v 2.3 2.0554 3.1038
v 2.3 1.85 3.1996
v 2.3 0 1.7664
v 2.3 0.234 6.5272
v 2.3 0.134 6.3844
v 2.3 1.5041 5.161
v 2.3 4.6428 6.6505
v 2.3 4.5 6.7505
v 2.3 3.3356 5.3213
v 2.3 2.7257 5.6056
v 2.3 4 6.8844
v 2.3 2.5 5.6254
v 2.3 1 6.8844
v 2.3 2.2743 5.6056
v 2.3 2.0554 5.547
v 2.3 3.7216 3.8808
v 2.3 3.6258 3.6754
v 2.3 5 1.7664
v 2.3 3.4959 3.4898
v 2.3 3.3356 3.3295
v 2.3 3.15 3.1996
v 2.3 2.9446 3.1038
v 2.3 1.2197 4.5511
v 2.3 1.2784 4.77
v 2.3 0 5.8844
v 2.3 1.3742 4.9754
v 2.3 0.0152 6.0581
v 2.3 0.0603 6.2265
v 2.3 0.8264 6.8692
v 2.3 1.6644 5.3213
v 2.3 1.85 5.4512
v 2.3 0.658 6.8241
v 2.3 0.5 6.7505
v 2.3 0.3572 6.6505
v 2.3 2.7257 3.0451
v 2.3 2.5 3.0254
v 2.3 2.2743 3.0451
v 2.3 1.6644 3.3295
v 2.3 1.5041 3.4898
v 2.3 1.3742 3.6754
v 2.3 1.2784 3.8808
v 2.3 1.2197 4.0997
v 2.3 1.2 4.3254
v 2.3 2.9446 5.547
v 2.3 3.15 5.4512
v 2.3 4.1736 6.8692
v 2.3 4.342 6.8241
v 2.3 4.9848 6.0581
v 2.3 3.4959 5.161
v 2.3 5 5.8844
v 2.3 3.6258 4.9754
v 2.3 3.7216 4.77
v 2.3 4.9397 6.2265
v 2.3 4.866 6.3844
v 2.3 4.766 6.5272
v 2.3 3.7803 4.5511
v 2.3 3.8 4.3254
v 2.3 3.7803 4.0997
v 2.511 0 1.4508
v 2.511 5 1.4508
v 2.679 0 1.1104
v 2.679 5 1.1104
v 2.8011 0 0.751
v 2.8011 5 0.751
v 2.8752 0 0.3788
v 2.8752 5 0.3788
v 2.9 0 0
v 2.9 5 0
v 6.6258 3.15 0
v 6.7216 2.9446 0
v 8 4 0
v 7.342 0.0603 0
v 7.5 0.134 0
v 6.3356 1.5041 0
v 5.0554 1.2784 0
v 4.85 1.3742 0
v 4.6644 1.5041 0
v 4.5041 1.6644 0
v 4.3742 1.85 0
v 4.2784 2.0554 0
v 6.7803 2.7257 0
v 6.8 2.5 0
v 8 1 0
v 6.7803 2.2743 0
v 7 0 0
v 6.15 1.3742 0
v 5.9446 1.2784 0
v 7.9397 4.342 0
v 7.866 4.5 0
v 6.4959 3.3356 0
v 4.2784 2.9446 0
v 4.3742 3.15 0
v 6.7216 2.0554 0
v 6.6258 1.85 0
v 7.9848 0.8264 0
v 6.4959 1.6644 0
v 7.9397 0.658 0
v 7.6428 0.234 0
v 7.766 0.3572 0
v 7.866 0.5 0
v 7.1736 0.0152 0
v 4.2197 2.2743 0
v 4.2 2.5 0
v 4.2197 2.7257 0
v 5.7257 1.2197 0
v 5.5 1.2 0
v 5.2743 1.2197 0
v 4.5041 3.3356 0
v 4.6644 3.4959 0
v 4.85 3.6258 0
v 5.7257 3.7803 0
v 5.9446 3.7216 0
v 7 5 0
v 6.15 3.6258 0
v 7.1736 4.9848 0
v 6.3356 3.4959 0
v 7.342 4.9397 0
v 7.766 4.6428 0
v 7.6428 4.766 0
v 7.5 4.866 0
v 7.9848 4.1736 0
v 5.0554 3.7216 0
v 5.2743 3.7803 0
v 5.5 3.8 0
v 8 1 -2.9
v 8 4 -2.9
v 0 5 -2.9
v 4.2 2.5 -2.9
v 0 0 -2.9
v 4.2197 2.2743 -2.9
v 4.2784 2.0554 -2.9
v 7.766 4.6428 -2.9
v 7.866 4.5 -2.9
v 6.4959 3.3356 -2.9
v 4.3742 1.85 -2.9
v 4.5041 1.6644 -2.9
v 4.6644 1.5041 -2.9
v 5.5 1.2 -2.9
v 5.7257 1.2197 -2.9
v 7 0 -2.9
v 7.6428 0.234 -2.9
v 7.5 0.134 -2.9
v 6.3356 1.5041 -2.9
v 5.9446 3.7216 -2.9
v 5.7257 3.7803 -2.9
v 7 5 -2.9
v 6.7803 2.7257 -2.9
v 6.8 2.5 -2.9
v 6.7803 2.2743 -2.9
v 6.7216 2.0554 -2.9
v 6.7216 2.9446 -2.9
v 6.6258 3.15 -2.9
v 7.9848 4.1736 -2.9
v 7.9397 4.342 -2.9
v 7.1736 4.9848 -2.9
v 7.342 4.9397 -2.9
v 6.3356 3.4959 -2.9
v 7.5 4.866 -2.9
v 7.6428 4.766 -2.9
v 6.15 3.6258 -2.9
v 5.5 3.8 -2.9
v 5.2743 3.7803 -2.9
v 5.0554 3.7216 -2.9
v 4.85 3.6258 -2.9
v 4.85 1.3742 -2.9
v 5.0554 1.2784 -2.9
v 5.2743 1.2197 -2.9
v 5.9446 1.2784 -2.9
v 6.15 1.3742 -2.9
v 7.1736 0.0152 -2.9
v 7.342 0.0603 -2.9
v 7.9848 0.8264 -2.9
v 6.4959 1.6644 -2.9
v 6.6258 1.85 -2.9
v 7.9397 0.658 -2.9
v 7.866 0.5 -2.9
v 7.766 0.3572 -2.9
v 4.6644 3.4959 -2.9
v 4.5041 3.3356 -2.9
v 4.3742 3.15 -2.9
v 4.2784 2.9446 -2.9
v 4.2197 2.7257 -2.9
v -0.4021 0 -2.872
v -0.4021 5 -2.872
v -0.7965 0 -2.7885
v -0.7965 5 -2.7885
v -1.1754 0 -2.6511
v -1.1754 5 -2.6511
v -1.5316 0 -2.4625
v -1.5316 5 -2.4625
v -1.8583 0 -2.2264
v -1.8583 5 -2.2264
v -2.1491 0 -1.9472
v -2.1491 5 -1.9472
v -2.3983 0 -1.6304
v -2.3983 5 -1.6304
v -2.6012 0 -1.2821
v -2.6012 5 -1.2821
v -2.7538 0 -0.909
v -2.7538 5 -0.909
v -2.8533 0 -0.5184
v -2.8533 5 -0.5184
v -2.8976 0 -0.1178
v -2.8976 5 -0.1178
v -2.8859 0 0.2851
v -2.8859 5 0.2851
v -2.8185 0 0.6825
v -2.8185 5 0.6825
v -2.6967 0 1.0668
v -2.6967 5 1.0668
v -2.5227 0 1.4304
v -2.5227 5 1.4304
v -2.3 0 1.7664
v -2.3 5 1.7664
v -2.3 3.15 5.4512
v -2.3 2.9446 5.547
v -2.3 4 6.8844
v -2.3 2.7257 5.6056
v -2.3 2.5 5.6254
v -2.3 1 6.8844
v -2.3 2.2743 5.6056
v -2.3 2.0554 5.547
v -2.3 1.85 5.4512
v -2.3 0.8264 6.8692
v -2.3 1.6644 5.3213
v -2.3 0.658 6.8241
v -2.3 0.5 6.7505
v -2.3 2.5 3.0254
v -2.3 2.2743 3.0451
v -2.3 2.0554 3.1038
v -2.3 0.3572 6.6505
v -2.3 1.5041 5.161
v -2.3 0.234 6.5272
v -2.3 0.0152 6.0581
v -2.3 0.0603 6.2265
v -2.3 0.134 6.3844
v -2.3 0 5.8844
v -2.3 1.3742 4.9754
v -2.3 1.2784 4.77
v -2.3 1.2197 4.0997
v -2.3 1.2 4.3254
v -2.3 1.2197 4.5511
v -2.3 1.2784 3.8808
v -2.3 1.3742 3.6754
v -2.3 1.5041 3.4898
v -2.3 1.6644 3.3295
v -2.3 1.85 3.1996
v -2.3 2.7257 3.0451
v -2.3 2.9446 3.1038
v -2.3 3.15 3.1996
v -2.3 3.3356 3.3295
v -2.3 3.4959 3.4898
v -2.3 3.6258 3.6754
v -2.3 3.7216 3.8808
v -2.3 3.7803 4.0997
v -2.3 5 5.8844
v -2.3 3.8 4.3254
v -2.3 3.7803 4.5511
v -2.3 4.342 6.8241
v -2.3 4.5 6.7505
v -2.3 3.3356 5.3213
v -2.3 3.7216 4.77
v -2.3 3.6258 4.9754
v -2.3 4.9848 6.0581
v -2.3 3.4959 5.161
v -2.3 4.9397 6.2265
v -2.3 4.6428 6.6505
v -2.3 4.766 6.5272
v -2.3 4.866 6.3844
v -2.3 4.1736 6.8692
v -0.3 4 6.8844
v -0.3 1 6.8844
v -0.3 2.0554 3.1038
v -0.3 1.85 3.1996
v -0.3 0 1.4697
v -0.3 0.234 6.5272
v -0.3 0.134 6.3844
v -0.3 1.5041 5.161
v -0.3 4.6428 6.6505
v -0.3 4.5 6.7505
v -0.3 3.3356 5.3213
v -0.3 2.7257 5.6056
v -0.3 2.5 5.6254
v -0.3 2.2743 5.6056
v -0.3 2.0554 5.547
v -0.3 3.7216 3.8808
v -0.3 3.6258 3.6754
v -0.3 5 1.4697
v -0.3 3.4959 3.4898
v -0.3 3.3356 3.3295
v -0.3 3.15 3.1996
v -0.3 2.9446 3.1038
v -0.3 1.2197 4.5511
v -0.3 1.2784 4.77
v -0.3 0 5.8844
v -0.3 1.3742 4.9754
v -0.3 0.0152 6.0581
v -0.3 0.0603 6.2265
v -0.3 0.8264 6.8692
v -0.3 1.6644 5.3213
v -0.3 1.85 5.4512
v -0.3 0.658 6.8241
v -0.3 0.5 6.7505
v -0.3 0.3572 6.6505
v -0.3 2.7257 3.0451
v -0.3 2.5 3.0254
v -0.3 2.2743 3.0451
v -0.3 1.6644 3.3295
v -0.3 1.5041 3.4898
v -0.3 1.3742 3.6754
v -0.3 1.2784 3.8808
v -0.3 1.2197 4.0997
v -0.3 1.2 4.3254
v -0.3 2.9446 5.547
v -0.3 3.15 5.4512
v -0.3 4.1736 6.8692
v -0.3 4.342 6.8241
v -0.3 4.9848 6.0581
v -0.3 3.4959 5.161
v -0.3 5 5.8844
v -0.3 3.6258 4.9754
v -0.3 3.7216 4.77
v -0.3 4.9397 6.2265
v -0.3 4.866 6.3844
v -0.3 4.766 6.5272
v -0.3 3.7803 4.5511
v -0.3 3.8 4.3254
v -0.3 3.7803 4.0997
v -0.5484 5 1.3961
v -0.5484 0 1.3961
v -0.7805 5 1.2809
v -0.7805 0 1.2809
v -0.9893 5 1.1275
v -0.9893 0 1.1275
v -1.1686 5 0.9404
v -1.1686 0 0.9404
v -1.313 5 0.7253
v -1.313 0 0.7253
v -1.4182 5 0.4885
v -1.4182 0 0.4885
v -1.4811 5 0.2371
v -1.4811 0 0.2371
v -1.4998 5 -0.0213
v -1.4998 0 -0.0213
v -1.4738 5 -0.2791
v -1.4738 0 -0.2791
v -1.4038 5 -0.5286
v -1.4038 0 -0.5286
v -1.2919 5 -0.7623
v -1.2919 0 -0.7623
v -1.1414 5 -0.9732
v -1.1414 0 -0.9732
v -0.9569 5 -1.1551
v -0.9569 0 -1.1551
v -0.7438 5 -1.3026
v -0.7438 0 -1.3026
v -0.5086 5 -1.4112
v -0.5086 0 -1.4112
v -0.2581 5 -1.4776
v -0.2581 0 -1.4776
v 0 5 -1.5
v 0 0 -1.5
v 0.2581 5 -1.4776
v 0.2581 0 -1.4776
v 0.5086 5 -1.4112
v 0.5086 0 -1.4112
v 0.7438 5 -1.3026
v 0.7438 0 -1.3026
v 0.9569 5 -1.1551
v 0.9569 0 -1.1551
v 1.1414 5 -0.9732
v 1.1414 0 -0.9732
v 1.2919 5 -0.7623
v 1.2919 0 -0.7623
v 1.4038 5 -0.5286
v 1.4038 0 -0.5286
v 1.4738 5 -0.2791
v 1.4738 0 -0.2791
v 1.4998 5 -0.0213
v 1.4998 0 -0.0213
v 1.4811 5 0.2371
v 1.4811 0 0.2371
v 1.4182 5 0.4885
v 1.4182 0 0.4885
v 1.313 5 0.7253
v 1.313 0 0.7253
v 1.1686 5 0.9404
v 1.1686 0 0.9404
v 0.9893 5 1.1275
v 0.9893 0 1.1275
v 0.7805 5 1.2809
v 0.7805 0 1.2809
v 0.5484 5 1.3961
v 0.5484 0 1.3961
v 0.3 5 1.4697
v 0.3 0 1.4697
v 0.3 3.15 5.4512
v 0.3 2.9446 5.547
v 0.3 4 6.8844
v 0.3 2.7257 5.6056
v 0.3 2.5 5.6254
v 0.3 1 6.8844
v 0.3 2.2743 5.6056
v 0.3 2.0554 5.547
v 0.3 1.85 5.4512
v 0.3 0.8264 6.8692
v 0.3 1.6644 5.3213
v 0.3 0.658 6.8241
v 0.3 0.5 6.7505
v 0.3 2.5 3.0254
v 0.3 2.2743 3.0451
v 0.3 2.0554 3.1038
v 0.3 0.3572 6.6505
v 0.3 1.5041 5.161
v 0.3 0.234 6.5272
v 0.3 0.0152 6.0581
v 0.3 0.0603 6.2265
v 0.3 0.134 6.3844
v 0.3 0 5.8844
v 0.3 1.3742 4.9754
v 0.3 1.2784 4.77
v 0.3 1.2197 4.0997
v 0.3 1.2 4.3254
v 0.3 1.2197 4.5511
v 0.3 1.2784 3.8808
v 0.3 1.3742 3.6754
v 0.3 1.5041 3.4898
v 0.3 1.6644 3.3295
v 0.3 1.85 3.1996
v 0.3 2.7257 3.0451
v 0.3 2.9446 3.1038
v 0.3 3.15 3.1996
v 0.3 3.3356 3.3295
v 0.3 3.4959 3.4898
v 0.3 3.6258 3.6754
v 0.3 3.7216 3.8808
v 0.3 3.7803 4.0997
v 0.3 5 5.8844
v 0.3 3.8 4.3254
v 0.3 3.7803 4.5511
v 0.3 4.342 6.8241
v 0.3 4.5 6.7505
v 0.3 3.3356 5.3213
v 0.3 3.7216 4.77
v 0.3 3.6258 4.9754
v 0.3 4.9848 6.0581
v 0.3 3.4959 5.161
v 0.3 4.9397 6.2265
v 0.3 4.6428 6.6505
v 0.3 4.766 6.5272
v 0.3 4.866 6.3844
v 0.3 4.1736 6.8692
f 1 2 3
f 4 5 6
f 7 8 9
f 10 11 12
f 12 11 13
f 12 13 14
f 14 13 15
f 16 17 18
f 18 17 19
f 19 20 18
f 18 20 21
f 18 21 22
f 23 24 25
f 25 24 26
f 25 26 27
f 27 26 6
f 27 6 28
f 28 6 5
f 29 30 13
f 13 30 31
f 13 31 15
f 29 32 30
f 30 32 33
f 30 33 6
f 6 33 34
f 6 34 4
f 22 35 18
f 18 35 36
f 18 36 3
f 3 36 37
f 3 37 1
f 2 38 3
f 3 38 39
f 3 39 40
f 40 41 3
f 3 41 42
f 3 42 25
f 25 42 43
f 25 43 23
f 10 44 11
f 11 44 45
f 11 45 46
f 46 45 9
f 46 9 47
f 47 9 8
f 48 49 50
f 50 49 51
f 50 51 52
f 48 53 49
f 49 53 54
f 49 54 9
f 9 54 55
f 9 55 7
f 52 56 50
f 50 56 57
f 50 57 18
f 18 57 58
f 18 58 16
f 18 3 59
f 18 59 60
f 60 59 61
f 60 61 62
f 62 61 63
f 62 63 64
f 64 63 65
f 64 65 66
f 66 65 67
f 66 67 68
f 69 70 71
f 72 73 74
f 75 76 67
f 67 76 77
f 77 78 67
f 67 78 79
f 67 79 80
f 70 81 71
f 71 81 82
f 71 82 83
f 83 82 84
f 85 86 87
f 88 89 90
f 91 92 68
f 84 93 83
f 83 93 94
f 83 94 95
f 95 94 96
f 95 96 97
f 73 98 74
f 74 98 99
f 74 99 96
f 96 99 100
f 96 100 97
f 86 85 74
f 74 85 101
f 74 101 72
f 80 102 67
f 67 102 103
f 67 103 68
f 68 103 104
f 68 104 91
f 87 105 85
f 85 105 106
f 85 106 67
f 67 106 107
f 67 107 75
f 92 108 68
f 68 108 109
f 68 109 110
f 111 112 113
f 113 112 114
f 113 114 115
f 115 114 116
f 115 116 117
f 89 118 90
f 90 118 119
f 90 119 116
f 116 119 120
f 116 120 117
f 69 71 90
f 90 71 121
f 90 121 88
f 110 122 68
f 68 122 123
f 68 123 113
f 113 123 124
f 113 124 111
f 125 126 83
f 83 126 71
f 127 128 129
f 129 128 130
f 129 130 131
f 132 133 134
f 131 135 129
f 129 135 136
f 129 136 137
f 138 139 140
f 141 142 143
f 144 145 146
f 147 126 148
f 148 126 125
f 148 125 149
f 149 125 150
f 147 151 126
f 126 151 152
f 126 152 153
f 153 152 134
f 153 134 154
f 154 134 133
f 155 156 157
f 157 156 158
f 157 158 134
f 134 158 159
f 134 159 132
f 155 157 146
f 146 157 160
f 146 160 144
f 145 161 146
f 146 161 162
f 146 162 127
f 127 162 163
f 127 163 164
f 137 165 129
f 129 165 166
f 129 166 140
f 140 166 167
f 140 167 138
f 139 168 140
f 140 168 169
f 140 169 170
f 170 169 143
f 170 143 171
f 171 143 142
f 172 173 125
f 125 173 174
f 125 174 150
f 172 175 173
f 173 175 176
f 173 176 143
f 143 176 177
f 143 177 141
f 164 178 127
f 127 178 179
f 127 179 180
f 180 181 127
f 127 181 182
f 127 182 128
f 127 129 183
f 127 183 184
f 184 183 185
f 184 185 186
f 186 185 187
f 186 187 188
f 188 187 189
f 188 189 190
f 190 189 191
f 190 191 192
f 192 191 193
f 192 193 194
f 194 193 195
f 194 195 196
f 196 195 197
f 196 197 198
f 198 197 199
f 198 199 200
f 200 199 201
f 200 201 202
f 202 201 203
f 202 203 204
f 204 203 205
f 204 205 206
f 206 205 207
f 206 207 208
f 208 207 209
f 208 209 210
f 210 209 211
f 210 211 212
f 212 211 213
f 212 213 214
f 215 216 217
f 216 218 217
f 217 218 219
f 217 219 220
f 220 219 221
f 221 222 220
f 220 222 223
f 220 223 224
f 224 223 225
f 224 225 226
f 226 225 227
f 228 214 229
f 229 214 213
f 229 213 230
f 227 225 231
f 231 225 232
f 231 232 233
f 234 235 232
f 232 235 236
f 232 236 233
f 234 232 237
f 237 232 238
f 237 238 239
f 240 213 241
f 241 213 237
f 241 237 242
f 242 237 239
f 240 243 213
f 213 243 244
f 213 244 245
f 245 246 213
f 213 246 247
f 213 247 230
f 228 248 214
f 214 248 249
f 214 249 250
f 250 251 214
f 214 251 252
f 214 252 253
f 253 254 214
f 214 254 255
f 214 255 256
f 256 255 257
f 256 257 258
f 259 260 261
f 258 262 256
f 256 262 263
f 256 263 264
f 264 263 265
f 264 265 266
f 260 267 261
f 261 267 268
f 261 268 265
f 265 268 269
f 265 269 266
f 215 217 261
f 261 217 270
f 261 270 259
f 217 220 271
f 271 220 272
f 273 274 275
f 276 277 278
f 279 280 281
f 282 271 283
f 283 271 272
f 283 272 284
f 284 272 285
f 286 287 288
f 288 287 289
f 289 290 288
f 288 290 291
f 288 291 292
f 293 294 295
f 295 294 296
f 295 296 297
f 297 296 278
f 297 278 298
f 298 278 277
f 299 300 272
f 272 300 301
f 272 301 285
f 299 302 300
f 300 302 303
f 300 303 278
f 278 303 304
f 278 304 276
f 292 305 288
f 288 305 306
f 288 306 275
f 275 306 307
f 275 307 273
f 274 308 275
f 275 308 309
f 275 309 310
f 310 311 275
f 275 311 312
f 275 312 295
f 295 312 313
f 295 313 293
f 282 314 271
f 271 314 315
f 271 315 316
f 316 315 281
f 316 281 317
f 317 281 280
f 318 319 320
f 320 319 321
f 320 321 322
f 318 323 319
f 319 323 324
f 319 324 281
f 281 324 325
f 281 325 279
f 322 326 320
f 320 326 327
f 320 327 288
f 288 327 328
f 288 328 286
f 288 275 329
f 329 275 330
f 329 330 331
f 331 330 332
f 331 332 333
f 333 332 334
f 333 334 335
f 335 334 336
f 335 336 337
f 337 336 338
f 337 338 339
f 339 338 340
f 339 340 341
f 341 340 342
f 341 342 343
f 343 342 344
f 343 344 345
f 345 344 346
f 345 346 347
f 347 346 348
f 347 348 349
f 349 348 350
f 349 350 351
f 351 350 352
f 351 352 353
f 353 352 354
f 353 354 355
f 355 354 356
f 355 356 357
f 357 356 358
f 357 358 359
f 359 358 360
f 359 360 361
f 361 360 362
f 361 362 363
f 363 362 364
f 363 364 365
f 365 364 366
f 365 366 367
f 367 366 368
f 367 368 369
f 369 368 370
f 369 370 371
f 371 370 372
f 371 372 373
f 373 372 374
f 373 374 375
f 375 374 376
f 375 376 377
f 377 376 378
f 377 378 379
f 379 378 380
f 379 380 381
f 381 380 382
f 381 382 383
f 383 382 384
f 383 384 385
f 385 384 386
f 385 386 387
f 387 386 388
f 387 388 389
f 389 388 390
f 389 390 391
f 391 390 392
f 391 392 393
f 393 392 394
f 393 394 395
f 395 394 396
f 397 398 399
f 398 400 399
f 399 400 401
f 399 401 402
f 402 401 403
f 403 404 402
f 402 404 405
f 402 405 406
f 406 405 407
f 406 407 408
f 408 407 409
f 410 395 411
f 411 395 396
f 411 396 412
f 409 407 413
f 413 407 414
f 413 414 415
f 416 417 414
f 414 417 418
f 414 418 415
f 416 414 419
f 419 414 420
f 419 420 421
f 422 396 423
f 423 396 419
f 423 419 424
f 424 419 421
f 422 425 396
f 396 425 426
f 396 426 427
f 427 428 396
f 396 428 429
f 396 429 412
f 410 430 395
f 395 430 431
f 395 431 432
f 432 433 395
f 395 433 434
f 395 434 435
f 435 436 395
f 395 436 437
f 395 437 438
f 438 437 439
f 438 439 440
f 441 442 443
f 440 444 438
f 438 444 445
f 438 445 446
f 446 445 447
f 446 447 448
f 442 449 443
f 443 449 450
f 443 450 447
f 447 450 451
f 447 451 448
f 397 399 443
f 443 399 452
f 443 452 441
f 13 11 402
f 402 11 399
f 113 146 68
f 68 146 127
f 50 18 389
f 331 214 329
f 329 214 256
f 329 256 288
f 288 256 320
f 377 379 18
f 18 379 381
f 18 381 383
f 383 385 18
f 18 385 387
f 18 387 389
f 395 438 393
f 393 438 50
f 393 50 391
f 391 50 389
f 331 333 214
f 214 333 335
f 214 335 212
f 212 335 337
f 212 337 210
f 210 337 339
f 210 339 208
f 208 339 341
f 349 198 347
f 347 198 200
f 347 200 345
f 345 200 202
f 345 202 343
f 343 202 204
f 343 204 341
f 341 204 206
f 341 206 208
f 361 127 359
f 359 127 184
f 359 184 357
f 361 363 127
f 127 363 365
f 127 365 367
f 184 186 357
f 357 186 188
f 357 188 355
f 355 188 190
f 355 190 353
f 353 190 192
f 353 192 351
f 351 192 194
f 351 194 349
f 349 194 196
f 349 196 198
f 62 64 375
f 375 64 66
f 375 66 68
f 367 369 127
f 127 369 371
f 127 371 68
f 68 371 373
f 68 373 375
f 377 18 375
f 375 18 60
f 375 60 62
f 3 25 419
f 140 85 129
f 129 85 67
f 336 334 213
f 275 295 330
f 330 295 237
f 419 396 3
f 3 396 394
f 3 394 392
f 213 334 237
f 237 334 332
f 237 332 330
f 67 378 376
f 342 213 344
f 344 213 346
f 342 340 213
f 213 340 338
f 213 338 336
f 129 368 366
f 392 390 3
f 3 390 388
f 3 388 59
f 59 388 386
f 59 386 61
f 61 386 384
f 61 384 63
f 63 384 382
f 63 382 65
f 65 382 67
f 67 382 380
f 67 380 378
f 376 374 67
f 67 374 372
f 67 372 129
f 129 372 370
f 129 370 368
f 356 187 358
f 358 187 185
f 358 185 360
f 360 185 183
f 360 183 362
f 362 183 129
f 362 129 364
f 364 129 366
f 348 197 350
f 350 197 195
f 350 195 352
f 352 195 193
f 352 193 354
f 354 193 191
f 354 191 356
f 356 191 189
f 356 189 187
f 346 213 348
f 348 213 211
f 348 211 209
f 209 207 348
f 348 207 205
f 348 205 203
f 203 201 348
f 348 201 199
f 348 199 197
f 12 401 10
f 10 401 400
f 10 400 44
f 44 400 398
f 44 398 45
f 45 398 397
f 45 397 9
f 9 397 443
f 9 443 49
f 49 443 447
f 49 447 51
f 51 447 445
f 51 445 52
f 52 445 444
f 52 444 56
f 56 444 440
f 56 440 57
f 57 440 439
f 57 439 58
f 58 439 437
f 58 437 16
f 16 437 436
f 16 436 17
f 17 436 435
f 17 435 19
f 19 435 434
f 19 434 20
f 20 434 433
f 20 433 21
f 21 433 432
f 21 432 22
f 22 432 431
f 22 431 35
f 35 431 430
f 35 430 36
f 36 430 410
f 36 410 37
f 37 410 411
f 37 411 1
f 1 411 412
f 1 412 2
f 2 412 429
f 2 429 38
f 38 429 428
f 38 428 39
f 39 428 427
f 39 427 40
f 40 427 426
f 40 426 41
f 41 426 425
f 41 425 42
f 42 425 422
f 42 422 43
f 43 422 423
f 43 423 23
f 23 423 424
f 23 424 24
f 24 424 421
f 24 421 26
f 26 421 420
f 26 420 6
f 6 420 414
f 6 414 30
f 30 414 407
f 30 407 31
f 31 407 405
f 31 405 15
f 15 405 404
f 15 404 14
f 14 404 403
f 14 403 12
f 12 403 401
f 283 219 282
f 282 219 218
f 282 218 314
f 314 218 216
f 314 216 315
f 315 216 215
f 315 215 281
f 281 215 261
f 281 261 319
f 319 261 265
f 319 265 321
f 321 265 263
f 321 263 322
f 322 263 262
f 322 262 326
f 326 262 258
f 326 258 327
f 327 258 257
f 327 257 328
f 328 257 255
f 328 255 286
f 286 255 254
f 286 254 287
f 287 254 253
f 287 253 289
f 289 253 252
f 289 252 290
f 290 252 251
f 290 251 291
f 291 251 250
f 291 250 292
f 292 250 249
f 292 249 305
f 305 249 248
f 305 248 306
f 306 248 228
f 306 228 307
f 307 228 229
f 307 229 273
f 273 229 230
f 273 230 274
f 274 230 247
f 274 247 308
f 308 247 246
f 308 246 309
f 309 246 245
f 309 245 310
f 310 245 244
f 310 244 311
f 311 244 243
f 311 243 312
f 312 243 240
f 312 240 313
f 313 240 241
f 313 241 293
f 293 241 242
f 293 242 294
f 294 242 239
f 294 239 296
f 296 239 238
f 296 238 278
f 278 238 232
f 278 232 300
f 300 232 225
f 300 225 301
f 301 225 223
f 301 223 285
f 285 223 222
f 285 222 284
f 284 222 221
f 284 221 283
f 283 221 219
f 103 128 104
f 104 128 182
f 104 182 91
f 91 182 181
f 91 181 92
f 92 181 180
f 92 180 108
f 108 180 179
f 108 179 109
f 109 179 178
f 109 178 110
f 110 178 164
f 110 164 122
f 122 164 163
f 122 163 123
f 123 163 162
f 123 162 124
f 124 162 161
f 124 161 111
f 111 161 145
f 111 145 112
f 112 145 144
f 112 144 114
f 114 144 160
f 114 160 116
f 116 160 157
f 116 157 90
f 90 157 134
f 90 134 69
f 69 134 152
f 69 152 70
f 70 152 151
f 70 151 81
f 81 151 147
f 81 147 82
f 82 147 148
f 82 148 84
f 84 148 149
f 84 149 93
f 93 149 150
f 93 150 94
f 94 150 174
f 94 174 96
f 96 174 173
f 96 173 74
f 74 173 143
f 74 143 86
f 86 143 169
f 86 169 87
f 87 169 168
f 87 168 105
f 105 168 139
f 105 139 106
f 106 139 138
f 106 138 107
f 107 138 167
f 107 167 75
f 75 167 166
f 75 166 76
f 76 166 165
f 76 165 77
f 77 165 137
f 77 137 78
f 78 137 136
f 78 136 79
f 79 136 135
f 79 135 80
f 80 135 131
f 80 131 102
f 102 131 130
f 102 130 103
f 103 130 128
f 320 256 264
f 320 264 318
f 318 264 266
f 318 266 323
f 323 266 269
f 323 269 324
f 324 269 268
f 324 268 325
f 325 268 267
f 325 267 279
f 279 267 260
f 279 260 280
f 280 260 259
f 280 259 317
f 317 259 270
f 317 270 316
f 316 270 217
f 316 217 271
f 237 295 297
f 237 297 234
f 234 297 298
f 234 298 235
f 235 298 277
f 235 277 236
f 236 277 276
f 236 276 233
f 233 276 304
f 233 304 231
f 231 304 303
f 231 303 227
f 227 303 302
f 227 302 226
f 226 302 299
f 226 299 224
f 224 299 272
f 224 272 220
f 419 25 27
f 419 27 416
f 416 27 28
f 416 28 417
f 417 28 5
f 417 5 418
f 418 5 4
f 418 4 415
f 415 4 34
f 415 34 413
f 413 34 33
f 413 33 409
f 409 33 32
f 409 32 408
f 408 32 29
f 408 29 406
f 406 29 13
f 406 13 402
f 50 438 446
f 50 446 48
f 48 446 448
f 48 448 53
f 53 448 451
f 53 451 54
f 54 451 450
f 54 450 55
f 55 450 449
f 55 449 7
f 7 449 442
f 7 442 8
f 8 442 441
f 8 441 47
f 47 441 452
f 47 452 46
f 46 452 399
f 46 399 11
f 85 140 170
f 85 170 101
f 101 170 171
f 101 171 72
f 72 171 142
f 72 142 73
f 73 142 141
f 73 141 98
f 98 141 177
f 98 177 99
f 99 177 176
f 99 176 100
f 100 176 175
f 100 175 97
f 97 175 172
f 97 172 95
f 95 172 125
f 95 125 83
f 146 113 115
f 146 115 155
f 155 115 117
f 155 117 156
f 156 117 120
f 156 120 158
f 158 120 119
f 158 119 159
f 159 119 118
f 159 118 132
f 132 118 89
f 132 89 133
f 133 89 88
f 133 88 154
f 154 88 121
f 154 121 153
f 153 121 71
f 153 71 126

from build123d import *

# Parameters (mm, degrees)
BOSS_EXTRUDE1_DEPTH = 5
SKETCH2_R           = 1.3
CUT_EXTRUDE1_DEPTH  = 14.35984761
SKETCH3_R           = 1.3
CUT_EXTRUDE2_DEPTH  = 14.591735948
FILLET1_R           = 1
FILLET2_R           = 1


with BuildPart() as part:
    # Sketch1 → Boss-Extrude1 (new body)
    with BuildSketch(Plane(origin=(0, 0, 0), x_dir=(1, 0, 0), z_dir=(0, 1, 0))):
        with BuildLine():
            Line((2.3, -6.88444102), (2.3, -1.766352173))
            ThreePointArc((2.3, -1.766352173), (2.745906044, -0.932737905), (2.9, 0))
            Line((2.9, 0), (8, 0))
            Line((8, 0), (8, 2.9))
            Line((8, 2.9), (0, 2.9))
            ThreePointArc((0, 2.9), (-2.601194082, 1.282103486), (-2.3, -1.766352173))
            Line((-2.3, -1.766352173), (-2.3, -6.88444102))
            Line((-2.3, -6.88444102), (-0.3, -6.88444102))
            Line((-0.3, -6.88444102), (-0.3, -2.88444102))
            Line((-0.3, -2.88444102), (-0.3, -1.469693846))
            ThreePointArc((-0.3, -1.469693846), (0, 1.5), (0.3, -1.469693846))
            Line((0.3, -1.469693846), (0.3, -2.88444102))
            Line((0.3, -2.88444102), (0.3, -6.88444102))
            Line((0.3, -6.88444102), (2.3, -6.88444102))
        make_face()
    extrude(amount=BOSS_EXTRUDE1_DEPTH)

    # Sketch2 → Cut-Extrude1 (cut, through all)
    with BuildSketch(Plane.ZY.offset(2.3)):
        with Locations((4.325396597, 2.5)):
            Circle(SKETCH2_R)
    extrude(amount=-CUT_EXTRUDE1_DEPTH, mode=Mode.SUBTRACT)

    # Sketch3 → Cut-Extrude2 (cut, through all)
    with BuildSketch(Plane(origin=(0, 0, -2.9), x_dir=(-1, 0, 0), z_dir=(0, 0, -1))):
        with Locations((-5.5, 2.5)):
            Circle(SKETCH3_R)
    extrude(amount=-CUT_EXTRUDE2_DEPTH, mode=Mode.SUBTRACT)

    # Fillet1
    fillet1_edges = [part.edges().sort_by_distance(p)[0] for p in [
        (1.3, 0, 6.88444102),
        (-1.3, 0, 6.88444102),
        (-1.3, 5, 6.88444102),
        (1.3, 5, 6.88444102),
    ]]
    fillet(fillet1_edges, radius=FILLET1_R)

    # Fillet2
    fillet2_edges = [part.edges().sort_by_distance(p)[0] for p in [
        (8, 0, -1.45),
        (8, 5, -1.45),
    ]]
    fillet(fillet2_edges, radius=FILLET2_R)


solid = part.part
